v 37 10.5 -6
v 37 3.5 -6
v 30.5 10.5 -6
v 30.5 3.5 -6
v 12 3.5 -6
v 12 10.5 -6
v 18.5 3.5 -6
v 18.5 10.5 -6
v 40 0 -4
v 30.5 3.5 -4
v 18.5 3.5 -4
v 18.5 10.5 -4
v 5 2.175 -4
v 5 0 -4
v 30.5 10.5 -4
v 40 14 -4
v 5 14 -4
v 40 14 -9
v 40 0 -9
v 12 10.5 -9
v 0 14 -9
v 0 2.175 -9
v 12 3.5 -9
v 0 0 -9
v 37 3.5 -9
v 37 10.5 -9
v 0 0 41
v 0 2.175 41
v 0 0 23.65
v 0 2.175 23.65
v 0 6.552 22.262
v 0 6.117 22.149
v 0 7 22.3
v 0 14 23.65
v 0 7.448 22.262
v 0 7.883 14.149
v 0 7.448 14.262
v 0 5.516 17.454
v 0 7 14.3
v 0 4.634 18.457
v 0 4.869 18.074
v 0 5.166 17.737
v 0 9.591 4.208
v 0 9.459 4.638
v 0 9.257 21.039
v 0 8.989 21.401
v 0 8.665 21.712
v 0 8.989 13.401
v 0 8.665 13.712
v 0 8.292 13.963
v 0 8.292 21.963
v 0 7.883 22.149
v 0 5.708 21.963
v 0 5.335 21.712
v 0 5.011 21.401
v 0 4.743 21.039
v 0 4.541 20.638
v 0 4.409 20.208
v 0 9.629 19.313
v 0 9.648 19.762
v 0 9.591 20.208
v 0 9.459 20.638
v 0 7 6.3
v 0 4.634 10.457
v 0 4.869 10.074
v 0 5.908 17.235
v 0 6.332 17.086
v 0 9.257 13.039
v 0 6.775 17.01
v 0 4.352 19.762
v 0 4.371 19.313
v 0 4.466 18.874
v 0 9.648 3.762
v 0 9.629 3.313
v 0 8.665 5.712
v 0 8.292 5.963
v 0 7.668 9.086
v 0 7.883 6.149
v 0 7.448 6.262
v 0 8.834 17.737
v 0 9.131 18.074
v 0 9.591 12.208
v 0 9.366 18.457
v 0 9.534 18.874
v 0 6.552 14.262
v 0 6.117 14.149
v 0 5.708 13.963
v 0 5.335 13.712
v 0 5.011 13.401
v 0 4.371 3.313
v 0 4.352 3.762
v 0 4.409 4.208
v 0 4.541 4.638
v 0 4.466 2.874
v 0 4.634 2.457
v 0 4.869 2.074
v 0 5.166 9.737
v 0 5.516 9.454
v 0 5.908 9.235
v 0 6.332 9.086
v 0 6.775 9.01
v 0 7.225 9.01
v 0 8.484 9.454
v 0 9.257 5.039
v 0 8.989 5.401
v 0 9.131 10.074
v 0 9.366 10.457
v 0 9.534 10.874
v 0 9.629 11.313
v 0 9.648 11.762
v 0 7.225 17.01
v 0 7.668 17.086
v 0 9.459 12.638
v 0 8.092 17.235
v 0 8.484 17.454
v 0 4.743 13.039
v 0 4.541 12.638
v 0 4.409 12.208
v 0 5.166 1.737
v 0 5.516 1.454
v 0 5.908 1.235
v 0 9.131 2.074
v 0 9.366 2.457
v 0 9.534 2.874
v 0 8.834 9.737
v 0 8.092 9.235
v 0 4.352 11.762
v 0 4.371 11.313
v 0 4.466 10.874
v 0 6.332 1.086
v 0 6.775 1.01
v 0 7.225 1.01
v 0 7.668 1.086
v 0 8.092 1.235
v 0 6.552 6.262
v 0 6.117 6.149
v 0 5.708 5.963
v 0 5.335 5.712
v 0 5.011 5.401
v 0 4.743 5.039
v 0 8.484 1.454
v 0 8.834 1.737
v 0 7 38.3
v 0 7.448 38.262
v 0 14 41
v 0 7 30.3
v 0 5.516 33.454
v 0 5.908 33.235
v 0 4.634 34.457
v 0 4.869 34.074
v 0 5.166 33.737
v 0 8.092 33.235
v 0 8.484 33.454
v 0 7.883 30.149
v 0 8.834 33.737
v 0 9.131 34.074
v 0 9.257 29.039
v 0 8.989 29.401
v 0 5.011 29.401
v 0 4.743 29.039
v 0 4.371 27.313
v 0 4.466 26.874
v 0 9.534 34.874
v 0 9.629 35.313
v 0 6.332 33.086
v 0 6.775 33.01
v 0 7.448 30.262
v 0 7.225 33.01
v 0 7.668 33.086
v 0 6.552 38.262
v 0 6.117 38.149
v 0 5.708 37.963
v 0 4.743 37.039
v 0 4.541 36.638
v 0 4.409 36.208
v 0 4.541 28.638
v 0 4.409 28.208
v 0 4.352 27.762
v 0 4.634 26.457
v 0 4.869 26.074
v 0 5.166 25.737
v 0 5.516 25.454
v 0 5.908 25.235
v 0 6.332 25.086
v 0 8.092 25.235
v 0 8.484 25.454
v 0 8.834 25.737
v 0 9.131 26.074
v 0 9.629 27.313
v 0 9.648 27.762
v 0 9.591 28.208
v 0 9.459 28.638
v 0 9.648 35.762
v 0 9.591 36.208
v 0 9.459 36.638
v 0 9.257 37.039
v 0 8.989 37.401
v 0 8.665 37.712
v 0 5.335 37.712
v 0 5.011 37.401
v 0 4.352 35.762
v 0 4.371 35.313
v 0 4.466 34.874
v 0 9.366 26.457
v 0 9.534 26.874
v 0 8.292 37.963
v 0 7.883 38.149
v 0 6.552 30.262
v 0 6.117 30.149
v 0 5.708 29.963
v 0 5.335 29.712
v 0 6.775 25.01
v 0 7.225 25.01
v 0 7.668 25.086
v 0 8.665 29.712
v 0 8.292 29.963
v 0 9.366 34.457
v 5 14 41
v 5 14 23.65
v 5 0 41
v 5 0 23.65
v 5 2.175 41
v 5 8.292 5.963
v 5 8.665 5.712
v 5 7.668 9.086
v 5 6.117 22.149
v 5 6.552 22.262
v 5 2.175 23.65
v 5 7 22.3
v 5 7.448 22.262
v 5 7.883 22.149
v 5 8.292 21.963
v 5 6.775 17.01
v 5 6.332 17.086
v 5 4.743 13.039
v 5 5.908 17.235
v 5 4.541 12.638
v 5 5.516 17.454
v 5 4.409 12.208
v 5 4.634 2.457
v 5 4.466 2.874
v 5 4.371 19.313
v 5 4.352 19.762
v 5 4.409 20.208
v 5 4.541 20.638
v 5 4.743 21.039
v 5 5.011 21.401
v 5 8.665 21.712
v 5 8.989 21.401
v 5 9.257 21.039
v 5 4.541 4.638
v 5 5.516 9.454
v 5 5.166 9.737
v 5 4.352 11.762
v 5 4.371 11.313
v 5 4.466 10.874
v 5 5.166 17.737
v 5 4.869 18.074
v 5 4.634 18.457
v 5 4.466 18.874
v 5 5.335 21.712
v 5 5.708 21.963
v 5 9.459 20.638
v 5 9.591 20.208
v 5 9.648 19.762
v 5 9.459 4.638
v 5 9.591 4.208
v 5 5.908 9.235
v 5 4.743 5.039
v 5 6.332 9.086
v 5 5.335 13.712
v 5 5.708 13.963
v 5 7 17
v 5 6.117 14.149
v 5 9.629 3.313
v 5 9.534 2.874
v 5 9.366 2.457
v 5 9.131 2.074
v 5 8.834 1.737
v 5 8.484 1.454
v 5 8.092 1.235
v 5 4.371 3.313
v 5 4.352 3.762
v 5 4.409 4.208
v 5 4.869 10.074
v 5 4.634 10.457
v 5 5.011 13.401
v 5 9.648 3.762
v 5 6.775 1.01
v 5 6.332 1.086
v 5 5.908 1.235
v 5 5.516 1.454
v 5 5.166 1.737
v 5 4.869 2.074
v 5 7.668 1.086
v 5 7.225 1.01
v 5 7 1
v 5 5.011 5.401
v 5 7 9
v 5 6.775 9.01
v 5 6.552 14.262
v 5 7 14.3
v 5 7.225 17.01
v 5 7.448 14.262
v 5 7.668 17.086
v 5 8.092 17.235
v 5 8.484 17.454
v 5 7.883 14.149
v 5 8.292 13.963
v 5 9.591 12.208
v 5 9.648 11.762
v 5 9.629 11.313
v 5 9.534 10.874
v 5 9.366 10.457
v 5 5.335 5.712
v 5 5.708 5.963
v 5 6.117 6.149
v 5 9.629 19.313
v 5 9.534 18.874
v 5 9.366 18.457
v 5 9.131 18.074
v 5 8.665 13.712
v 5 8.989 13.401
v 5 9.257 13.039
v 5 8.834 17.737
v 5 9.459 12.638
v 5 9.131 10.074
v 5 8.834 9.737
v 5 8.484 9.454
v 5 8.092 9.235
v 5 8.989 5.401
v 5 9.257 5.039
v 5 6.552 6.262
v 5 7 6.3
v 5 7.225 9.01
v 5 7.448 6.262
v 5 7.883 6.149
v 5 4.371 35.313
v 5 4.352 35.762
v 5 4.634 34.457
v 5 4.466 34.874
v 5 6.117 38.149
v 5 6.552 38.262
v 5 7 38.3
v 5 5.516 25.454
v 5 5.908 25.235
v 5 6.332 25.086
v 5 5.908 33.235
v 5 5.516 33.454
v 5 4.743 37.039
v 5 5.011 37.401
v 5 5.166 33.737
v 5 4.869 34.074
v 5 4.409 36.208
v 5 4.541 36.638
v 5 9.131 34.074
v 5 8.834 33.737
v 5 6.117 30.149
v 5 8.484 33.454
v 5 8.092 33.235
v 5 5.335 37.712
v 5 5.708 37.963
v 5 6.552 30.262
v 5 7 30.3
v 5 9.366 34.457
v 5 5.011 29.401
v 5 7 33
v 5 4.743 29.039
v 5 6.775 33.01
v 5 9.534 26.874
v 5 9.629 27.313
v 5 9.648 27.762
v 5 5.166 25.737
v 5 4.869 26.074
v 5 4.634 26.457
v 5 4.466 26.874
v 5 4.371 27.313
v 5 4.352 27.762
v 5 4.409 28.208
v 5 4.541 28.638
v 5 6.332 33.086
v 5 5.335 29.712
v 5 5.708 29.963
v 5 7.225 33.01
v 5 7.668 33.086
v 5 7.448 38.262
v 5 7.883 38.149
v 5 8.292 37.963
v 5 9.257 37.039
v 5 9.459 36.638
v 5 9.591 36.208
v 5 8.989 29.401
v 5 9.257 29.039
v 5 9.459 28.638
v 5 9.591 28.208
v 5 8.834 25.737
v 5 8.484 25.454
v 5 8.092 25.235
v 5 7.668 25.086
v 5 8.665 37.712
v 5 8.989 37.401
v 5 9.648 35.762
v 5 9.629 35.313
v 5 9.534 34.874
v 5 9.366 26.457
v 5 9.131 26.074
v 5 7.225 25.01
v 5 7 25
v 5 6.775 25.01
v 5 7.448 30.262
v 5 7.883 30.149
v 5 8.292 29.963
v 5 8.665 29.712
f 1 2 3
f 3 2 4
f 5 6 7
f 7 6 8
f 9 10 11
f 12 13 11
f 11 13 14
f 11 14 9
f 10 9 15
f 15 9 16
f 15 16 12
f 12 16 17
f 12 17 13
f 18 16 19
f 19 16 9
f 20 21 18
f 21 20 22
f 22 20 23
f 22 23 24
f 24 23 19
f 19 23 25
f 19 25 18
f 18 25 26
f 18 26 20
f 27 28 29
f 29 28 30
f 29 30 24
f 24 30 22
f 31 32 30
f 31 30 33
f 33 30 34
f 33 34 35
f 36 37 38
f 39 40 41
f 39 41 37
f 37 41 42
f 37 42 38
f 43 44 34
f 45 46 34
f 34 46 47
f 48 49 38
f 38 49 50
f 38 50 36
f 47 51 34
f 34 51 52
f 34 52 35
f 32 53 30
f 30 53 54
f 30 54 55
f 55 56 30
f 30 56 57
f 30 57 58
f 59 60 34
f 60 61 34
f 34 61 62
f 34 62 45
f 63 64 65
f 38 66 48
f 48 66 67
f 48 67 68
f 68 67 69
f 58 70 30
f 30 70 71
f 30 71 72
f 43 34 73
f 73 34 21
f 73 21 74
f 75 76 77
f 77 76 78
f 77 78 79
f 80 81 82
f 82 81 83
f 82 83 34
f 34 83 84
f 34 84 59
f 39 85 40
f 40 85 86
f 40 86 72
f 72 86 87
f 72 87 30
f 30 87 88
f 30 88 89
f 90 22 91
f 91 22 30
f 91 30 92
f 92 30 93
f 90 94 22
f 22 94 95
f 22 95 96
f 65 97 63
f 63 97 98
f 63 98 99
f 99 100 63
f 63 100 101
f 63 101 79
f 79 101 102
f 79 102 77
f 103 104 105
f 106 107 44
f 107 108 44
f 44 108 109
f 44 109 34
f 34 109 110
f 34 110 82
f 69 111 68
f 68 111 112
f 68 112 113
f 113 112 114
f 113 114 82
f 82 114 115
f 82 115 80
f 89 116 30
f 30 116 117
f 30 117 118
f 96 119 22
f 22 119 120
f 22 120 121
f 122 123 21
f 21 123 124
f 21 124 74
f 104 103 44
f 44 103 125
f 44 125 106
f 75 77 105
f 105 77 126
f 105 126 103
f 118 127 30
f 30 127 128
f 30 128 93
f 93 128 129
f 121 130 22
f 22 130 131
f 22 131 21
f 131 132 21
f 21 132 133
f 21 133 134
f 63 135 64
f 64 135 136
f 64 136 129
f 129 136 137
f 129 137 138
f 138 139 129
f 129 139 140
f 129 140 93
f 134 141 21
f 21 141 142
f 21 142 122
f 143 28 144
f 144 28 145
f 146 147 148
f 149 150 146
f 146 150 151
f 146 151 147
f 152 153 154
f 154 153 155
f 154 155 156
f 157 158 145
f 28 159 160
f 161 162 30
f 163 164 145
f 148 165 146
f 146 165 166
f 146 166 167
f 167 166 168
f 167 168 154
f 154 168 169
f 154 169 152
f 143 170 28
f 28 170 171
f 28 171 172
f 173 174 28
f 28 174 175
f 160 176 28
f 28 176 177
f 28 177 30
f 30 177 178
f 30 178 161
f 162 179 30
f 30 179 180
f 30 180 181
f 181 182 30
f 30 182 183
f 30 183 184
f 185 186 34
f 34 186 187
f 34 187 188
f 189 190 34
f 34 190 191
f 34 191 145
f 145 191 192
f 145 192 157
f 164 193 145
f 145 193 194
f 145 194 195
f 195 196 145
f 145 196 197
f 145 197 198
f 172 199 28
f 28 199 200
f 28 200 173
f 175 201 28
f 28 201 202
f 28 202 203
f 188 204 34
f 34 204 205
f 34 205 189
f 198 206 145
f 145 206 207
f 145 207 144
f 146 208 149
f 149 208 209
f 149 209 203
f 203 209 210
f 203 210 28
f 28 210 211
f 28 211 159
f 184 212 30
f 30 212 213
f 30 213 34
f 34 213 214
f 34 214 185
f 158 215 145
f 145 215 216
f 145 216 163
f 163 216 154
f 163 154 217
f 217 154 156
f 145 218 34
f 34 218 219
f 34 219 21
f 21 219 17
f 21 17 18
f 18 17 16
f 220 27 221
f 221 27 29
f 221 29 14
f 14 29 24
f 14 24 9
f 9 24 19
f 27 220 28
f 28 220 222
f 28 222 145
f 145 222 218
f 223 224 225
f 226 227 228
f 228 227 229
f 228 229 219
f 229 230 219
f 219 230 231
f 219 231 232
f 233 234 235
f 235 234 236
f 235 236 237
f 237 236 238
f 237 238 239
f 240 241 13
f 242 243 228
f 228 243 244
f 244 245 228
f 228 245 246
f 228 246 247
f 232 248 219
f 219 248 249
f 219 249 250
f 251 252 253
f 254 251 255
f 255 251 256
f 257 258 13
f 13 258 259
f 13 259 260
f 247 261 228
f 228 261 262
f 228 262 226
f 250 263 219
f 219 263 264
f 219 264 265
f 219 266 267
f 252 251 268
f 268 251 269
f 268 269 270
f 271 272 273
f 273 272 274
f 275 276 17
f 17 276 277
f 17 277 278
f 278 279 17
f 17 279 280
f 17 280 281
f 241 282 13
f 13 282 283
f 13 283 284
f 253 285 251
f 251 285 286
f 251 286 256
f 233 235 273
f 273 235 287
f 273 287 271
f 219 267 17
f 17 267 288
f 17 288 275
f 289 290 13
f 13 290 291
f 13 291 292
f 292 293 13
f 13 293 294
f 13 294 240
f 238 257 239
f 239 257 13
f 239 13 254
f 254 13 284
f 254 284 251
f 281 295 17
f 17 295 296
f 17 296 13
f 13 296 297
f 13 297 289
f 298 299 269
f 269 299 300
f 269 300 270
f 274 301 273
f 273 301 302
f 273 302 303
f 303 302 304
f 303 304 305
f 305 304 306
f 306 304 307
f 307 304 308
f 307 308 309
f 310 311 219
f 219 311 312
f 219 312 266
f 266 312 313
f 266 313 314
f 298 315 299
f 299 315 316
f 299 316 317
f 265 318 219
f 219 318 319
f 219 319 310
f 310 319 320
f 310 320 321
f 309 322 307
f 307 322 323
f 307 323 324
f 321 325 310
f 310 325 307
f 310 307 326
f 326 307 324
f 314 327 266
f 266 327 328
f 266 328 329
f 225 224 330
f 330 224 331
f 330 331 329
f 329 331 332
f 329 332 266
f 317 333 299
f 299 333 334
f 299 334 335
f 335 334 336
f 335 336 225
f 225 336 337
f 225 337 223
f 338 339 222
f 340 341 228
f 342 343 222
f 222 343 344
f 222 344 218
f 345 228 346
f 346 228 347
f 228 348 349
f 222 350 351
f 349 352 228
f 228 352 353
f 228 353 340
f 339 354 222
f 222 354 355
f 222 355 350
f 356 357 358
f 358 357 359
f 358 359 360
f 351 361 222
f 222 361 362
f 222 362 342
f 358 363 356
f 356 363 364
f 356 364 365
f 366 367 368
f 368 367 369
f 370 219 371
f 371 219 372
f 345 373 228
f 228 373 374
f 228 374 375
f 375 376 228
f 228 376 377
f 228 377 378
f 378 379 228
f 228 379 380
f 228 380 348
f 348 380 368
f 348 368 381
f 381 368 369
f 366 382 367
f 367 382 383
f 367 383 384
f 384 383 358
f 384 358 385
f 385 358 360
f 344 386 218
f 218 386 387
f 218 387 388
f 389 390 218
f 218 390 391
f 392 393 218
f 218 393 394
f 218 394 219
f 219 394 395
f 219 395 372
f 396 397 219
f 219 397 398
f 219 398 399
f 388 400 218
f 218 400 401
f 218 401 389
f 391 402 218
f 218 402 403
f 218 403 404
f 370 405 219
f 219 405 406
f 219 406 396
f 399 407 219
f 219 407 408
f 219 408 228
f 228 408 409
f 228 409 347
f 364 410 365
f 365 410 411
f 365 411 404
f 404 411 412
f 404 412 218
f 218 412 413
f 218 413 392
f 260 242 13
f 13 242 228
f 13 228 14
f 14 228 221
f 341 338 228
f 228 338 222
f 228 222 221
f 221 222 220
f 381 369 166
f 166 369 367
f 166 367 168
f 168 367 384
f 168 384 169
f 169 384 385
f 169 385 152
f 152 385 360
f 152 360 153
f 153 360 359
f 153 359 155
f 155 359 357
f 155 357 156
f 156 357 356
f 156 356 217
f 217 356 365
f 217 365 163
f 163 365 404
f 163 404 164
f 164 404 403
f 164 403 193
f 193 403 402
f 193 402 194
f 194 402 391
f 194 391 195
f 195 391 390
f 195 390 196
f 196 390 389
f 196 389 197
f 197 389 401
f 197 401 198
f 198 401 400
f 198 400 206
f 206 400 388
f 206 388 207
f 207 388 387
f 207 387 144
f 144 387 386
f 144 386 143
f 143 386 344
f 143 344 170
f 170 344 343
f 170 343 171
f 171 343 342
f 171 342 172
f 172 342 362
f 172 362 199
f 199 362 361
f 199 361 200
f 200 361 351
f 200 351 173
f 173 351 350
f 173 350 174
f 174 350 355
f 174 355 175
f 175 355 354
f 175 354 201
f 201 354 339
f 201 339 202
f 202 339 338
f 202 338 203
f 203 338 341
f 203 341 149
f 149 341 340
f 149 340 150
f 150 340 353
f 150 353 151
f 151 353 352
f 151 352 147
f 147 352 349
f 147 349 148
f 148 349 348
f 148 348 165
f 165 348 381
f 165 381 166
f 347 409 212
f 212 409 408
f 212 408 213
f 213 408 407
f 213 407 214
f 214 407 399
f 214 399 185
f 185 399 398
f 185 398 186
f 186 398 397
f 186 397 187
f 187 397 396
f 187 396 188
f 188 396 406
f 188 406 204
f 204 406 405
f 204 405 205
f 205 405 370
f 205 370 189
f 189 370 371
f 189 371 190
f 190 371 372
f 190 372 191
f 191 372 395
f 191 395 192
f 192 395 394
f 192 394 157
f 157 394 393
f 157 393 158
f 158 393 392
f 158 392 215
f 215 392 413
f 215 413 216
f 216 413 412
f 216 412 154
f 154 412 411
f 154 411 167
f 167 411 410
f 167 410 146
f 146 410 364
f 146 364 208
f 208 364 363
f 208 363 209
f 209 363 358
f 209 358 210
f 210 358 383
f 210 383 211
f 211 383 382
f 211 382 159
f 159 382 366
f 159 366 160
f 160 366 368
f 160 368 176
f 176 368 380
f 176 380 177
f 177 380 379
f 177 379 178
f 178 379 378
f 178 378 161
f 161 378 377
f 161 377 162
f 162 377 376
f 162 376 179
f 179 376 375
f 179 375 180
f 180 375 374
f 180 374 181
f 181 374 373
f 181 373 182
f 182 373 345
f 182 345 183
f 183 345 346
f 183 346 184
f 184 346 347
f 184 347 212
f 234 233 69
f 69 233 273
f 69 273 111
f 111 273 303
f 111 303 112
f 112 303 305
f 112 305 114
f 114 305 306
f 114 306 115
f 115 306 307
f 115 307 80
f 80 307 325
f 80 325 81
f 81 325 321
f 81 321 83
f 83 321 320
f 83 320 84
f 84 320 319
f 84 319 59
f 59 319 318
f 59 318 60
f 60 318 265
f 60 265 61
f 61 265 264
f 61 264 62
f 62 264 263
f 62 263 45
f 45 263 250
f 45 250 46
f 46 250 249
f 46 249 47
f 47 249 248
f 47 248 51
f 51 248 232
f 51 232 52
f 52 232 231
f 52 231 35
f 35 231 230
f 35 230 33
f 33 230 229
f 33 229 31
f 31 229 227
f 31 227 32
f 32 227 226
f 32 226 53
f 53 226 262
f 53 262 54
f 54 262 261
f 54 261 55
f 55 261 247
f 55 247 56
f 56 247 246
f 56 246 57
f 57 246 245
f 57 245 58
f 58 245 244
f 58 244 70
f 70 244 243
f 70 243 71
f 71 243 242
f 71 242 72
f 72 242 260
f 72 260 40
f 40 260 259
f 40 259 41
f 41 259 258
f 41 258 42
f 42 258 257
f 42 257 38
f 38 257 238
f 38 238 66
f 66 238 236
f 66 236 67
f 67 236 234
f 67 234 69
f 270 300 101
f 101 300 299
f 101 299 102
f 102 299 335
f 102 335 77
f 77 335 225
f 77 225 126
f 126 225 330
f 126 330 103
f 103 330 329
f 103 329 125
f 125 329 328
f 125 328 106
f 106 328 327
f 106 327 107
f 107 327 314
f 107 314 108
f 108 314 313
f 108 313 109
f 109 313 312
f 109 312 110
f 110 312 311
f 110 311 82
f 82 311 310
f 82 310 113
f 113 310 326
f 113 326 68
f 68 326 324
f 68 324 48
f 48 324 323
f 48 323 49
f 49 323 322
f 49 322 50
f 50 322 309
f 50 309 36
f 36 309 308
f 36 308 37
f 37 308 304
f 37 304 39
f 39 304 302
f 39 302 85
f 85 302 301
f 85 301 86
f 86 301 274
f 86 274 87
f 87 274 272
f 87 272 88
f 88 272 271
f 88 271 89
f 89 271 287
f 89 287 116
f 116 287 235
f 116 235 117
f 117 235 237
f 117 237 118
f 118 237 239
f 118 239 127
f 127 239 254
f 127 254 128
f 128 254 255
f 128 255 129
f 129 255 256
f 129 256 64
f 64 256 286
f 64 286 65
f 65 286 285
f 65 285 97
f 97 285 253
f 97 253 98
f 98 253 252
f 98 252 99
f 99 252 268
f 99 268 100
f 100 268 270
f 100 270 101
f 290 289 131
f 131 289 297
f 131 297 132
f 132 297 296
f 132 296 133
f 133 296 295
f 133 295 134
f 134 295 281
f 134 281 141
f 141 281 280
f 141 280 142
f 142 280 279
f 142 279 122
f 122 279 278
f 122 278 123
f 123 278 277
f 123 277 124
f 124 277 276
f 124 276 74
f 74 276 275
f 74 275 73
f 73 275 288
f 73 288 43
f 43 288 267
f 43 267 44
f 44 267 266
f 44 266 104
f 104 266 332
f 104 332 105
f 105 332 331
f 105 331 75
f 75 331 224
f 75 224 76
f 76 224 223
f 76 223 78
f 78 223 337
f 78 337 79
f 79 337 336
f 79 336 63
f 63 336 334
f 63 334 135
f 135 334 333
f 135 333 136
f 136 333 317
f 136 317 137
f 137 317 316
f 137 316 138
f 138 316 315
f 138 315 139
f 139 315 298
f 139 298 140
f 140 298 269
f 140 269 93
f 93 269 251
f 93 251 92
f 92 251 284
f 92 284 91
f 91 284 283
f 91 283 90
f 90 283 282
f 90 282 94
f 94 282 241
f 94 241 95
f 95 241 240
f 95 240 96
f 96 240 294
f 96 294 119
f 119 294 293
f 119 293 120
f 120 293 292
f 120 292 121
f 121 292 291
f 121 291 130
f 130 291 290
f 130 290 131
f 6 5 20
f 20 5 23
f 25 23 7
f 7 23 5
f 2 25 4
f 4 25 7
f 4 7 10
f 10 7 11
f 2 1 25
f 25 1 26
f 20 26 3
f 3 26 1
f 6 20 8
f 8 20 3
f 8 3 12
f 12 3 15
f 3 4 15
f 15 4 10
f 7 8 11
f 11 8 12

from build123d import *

# Parameters (mm, degrees)
BOSS_EXTRUDE1_DEPTH  = 14
SKETCH20_W           = 41
SKETCH20_H           = 14
BOSS_EXTRUDE10_DEPTH = 5
SKETCH21_R           = 2.65
CUT_EXTRUDE13_DEPTH  = 5
SKETCH22_W           = 5
SKETCH22_H           = 4
CUT_EXTRUDE14_DEPTH  = 59.966091951
SKETCH23_R           = 2.65
BOSS_EXTRUDE11_DEPTH = 5
SKETCH24_W           = 25
SKETCH24_H           = 7
CUT_EXTRUDE15_DEPTH  = 3
CUT_EXTRUDE16_REACH  = 65.285
SKETCH25_W           = 12
SKETCH25_H           = 7


with BuildPart() as part:
    # Sketch1 → Boss-Extrude1 (new body)
    with BuildSketch(Plane(origin=(0, 0, 0), x_dir=(1, 0, 0), z_dir=(0, 1, 0))):
        Polygon((6.589095597, 0), (10, 0), (10, 4), (40, 4), (40, 9), (11.589095597, 9), (0, 9), (0, 0), align=None)
    extrude(amount=BOSS_EXTRUDE1_DEPTH)

    # Sketch20 → Boss-Extrude10 (add)
    with BuildSketch(Plane.ZY):
        with Locations((20.5, 7)):
            Rectangle(SKETCH20_W, SKETCH20_H)
    extrude(amount=-BOSS_EXTRUDE10_DEPTH)

    # Sketch21 → Cut-Extrude13 (cut)
    with BuildSketch(Plane.ZY):
        with Locations((-4.35, 7)):
            Circle(SKETCH21_R)
        with Locations((3.65, 7)):
            Circle(SKETCH21_R)
        with Locations((11.65, 7)):
            Circle(SKETCH21_R)
        with Locations((19.65, 7)):
            Circle(SKETCH21_R)
        with Locations((27.65, 7)):
            Circle(SKETCH21_R)
        with Locations((35.65, 7)):
            Circle(SKETCH21_R)
    extrude(amount=-CUT_EXTRUDE13_DEPTH, mode=Mode.SUBTRACT)

    # Sketch22 → Cut-Extrude14 (cut, through all)
    with BuildSketch(Plane(origin=(0, 14, 0), x_dir=(1, 0, 0), z_dir=(0, 1, 0))):
        with Locations((7.5, 2)):
            Rectangle(SKETCH22_W, SKETCH22_H)
    extrude(amount=-CUT_EXTRUDE14_DEPTH, mode=Mode.SUBTRACT)

    # Sketch23 → Boss-Extrude11 (add)
    with BuildSketch(Plane.ZY):
        with Locations((-4.35, 7)):
            Circle(SKETCH23_R)
    extrude(amount=-BOSS_EXTRUDE11_DEPTH)

    # Sketch24 → Cut-Extrude15 (cut)
    with BuildSketch(Plane(origin=(0, 0, -9), x_dir=(-1, 0, 0), z_dir=(0, 0, -1))):
        with Locations((-24.5, 7)):
            Rectangle(SKETCH24_W, SKETCH24_H)
    extrude(amount=-CUT_EXTRUDE15_DEPTH, mode=Mode.SUBTRACT)

    # Sketch25 → Cut-Extrude16 (cut, up to next)
    with BuildSketch(Plane(origin=(0, 0, -6), x_dir=(-1, 0, 0), z_dir=(0, 0, -1)), mode=Mode.PRIVATE) as cut_extrude16_sk1:
        with Locations((-24.5, 7)):
            Rectangle(SKETCH25_W, SKETCH25_H)
    cut_extrude16_tool1 = extrude(cut_extrude16_sk1.sketch, amount=-CUT_EXTRUDE16_REACH, mode=Mode.PRIVATE) & part.part
    add(cut_extrude16_tool1.solids().sort_by_distance((24.5, 7, -6))[0], mode=Mode.SUBTRACT)


solid = part.part
